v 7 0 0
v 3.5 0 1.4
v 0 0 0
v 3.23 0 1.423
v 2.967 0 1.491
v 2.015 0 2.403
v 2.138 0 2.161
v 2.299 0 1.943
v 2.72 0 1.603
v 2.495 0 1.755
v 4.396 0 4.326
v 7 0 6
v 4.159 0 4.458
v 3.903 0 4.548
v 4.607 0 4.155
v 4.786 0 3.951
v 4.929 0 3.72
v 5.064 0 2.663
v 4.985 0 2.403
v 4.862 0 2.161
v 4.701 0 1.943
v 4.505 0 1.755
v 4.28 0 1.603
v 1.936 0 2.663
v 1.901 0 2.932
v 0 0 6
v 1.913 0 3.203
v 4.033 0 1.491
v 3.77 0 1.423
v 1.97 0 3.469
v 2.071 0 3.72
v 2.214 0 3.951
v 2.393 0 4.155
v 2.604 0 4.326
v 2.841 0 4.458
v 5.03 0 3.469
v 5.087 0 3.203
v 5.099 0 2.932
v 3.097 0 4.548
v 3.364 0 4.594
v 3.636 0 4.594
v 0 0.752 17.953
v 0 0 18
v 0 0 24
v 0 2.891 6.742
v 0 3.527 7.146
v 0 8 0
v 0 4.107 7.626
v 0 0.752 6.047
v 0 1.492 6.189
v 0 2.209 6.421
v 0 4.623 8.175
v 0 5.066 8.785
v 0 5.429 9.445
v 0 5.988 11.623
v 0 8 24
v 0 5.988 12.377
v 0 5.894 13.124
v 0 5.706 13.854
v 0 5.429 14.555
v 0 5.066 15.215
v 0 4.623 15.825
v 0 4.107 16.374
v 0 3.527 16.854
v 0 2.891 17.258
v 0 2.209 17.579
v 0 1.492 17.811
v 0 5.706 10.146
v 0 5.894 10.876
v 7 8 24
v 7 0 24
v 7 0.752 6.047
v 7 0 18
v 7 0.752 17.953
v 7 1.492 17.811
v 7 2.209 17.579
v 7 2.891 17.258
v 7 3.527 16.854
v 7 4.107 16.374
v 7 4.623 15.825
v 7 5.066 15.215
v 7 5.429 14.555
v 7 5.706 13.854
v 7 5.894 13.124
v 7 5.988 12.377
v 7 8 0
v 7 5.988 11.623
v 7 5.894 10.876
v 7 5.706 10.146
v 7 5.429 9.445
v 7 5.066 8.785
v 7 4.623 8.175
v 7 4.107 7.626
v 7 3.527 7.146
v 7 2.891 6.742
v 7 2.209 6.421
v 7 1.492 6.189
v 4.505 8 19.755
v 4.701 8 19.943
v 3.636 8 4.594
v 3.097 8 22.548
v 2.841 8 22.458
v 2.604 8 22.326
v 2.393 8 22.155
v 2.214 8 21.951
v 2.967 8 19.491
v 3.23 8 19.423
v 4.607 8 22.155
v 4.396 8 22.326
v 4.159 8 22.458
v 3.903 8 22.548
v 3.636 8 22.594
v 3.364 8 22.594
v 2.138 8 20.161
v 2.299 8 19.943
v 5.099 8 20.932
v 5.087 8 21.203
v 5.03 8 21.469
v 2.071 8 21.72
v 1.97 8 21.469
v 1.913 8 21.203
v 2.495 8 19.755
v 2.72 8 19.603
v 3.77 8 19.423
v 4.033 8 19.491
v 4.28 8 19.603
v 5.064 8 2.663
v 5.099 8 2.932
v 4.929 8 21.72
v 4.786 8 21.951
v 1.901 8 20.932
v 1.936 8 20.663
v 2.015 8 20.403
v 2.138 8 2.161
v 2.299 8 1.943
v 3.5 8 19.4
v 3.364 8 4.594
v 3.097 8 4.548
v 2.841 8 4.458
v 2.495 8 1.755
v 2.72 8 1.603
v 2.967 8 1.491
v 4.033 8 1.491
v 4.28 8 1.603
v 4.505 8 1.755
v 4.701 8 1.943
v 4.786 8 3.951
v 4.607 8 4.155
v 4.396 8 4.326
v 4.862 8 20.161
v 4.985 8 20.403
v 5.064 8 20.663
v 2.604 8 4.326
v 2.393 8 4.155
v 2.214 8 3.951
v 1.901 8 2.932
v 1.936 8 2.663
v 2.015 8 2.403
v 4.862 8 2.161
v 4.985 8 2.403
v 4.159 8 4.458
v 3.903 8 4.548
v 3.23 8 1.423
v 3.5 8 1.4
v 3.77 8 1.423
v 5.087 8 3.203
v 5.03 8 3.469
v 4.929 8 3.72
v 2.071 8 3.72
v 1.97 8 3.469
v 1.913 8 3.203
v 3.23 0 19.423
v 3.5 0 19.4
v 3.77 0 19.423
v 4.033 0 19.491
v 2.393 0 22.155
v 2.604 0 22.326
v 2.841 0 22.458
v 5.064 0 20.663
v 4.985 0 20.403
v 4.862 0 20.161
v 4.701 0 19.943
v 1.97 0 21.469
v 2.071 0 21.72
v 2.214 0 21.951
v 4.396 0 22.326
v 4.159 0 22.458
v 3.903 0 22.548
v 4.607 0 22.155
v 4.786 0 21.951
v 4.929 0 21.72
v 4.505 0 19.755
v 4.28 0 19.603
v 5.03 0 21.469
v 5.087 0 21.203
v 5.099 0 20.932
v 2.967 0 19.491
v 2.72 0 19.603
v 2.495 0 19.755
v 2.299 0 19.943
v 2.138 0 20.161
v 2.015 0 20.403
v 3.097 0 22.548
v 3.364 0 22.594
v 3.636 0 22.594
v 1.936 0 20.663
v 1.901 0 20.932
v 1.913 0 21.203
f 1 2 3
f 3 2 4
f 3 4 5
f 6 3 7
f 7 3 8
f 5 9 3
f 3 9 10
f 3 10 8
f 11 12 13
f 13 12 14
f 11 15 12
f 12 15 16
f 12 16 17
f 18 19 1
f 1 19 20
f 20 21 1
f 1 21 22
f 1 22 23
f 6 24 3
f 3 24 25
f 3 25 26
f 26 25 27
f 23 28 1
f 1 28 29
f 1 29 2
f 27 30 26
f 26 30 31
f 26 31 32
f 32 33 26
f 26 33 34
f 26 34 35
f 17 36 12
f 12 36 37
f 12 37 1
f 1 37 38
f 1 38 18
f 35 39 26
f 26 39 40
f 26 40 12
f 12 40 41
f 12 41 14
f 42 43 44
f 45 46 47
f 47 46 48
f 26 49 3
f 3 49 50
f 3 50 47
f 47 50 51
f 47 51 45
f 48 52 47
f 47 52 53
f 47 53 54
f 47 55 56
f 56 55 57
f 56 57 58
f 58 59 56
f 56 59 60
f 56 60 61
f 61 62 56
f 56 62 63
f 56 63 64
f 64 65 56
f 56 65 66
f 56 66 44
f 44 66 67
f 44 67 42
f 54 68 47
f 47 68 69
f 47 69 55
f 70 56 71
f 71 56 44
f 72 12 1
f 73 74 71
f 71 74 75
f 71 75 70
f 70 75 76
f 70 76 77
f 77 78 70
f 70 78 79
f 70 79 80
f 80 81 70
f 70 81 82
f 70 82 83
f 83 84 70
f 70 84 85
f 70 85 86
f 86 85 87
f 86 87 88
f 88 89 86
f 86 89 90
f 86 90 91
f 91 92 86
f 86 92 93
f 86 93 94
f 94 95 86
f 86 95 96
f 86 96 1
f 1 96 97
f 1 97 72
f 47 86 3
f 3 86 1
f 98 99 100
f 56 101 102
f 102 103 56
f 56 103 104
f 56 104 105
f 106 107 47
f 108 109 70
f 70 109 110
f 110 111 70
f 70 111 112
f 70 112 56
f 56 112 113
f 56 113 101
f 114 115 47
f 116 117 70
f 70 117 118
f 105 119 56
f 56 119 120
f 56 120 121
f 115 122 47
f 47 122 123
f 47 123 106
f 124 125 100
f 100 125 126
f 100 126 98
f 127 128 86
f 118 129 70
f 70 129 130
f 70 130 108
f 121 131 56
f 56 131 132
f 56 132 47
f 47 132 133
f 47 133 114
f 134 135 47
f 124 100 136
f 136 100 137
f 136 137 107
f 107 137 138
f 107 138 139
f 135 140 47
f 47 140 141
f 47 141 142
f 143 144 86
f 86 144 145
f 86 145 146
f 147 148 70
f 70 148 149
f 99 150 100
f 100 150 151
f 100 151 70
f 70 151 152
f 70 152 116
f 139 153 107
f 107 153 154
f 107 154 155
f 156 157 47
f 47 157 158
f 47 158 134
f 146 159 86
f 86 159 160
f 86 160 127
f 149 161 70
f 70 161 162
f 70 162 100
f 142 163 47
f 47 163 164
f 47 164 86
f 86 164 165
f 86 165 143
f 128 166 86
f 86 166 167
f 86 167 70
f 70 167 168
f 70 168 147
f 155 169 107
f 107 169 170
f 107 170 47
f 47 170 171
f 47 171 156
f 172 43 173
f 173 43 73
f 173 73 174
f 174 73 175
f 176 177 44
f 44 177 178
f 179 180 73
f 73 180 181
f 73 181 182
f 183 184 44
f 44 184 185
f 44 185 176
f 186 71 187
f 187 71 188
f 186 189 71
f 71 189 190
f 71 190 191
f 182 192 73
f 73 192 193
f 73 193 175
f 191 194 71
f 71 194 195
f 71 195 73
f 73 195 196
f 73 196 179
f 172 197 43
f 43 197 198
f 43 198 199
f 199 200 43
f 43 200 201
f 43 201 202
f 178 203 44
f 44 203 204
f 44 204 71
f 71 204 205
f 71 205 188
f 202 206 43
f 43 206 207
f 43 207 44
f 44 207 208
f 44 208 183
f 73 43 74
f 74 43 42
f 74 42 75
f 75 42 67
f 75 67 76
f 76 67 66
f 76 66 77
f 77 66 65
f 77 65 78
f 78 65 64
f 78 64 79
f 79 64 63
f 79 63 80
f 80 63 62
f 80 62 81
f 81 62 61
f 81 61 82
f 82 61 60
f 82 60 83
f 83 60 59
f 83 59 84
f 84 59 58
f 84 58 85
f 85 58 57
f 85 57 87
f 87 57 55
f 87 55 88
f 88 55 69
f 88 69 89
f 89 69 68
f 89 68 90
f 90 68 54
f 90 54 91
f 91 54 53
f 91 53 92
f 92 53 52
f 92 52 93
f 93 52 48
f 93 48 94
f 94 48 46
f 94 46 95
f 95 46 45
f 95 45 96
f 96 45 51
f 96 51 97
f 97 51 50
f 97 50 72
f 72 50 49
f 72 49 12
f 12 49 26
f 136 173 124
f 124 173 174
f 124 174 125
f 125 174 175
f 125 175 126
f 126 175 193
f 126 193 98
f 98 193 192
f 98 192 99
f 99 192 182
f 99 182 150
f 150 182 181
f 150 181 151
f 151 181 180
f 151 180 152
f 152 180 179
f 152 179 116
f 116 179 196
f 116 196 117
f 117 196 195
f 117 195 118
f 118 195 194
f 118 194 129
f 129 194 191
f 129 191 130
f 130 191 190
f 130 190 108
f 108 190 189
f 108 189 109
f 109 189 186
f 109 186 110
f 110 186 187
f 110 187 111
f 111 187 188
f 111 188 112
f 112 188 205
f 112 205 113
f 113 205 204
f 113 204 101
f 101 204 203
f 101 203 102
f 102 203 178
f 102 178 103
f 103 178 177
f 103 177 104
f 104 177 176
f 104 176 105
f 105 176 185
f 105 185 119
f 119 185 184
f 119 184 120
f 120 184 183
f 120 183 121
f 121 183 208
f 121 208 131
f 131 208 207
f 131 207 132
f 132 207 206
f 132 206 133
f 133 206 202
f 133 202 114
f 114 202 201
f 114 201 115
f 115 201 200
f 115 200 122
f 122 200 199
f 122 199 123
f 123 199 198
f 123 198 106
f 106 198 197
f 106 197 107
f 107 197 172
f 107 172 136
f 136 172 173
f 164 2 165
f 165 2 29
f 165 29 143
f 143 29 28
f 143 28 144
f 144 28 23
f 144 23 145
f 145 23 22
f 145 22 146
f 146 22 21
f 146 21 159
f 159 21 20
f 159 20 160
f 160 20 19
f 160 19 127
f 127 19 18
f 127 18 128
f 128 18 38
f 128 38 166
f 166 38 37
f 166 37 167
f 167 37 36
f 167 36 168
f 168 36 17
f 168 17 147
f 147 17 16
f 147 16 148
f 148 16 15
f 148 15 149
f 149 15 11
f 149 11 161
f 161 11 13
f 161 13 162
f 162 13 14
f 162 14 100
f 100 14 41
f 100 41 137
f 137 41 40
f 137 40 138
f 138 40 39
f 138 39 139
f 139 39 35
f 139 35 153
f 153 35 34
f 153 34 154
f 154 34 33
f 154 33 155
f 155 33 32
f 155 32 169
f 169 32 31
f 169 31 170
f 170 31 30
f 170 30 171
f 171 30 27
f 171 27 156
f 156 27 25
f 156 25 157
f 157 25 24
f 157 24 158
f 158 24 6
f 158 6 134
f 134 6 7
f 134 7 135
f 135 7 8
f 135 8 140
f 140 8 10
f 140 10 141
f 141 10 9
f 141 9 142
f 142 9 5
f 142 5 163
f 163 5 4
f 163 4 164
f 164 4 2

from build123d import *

# Parameters (mm, degrees)
SKETCH_1_W          = 7
SKETCH_1_H          = 24
EXTRUDE_1_DEPTH     = 8
SKETCH_2_R          = 6
CUT_EXTRUDE_1_DEPTH = 7
SKETCH_3_R          = 1.6
CUT_EXTRUDE_2_DEPTH = 27.248809497


with BuildPart() as part:
    # 草图1 → 凸台-拉伸1 (new body)
    with BuildSketch(Plane(origin=(0, 0, 0), x_dir=(1, 0, 0), z_dir=(0, 1, 0))):
        with Locations((3.5, -12)):
            Rectangle(SKETCH_1_W, SKETCH_1_H)
    extrude(amount=EXTRUDE_1_DEPTH)

    # 草图2 → 切除-拉伸1 (cut)
    with BuildSketch(Plane.ZY):
        with Locations((12, 0)):
            Circle(SKETCH_2_R)
    extrude(amount=-CUT_EXTRUDE_1_DEPTH, mode=Mode.SUBTRACT)

    # 草图3 → 切除-拉伸2 (cut, through all)
    with BuildSketch(Plane.XZ):
        with Locations(Location((3.5, 21, 0), (0, 0, 270))):
            Circle(SKETCH_3_R)
        with Locations(Location((3.5, 3, 0), (0, 0, 270))):
            Circle(SKETCH_3_R)
    extrude(amount=-CUT_EXTRUDE_2_DEPTH, mode=Mode.SUBTRACT)


solid = part.part
